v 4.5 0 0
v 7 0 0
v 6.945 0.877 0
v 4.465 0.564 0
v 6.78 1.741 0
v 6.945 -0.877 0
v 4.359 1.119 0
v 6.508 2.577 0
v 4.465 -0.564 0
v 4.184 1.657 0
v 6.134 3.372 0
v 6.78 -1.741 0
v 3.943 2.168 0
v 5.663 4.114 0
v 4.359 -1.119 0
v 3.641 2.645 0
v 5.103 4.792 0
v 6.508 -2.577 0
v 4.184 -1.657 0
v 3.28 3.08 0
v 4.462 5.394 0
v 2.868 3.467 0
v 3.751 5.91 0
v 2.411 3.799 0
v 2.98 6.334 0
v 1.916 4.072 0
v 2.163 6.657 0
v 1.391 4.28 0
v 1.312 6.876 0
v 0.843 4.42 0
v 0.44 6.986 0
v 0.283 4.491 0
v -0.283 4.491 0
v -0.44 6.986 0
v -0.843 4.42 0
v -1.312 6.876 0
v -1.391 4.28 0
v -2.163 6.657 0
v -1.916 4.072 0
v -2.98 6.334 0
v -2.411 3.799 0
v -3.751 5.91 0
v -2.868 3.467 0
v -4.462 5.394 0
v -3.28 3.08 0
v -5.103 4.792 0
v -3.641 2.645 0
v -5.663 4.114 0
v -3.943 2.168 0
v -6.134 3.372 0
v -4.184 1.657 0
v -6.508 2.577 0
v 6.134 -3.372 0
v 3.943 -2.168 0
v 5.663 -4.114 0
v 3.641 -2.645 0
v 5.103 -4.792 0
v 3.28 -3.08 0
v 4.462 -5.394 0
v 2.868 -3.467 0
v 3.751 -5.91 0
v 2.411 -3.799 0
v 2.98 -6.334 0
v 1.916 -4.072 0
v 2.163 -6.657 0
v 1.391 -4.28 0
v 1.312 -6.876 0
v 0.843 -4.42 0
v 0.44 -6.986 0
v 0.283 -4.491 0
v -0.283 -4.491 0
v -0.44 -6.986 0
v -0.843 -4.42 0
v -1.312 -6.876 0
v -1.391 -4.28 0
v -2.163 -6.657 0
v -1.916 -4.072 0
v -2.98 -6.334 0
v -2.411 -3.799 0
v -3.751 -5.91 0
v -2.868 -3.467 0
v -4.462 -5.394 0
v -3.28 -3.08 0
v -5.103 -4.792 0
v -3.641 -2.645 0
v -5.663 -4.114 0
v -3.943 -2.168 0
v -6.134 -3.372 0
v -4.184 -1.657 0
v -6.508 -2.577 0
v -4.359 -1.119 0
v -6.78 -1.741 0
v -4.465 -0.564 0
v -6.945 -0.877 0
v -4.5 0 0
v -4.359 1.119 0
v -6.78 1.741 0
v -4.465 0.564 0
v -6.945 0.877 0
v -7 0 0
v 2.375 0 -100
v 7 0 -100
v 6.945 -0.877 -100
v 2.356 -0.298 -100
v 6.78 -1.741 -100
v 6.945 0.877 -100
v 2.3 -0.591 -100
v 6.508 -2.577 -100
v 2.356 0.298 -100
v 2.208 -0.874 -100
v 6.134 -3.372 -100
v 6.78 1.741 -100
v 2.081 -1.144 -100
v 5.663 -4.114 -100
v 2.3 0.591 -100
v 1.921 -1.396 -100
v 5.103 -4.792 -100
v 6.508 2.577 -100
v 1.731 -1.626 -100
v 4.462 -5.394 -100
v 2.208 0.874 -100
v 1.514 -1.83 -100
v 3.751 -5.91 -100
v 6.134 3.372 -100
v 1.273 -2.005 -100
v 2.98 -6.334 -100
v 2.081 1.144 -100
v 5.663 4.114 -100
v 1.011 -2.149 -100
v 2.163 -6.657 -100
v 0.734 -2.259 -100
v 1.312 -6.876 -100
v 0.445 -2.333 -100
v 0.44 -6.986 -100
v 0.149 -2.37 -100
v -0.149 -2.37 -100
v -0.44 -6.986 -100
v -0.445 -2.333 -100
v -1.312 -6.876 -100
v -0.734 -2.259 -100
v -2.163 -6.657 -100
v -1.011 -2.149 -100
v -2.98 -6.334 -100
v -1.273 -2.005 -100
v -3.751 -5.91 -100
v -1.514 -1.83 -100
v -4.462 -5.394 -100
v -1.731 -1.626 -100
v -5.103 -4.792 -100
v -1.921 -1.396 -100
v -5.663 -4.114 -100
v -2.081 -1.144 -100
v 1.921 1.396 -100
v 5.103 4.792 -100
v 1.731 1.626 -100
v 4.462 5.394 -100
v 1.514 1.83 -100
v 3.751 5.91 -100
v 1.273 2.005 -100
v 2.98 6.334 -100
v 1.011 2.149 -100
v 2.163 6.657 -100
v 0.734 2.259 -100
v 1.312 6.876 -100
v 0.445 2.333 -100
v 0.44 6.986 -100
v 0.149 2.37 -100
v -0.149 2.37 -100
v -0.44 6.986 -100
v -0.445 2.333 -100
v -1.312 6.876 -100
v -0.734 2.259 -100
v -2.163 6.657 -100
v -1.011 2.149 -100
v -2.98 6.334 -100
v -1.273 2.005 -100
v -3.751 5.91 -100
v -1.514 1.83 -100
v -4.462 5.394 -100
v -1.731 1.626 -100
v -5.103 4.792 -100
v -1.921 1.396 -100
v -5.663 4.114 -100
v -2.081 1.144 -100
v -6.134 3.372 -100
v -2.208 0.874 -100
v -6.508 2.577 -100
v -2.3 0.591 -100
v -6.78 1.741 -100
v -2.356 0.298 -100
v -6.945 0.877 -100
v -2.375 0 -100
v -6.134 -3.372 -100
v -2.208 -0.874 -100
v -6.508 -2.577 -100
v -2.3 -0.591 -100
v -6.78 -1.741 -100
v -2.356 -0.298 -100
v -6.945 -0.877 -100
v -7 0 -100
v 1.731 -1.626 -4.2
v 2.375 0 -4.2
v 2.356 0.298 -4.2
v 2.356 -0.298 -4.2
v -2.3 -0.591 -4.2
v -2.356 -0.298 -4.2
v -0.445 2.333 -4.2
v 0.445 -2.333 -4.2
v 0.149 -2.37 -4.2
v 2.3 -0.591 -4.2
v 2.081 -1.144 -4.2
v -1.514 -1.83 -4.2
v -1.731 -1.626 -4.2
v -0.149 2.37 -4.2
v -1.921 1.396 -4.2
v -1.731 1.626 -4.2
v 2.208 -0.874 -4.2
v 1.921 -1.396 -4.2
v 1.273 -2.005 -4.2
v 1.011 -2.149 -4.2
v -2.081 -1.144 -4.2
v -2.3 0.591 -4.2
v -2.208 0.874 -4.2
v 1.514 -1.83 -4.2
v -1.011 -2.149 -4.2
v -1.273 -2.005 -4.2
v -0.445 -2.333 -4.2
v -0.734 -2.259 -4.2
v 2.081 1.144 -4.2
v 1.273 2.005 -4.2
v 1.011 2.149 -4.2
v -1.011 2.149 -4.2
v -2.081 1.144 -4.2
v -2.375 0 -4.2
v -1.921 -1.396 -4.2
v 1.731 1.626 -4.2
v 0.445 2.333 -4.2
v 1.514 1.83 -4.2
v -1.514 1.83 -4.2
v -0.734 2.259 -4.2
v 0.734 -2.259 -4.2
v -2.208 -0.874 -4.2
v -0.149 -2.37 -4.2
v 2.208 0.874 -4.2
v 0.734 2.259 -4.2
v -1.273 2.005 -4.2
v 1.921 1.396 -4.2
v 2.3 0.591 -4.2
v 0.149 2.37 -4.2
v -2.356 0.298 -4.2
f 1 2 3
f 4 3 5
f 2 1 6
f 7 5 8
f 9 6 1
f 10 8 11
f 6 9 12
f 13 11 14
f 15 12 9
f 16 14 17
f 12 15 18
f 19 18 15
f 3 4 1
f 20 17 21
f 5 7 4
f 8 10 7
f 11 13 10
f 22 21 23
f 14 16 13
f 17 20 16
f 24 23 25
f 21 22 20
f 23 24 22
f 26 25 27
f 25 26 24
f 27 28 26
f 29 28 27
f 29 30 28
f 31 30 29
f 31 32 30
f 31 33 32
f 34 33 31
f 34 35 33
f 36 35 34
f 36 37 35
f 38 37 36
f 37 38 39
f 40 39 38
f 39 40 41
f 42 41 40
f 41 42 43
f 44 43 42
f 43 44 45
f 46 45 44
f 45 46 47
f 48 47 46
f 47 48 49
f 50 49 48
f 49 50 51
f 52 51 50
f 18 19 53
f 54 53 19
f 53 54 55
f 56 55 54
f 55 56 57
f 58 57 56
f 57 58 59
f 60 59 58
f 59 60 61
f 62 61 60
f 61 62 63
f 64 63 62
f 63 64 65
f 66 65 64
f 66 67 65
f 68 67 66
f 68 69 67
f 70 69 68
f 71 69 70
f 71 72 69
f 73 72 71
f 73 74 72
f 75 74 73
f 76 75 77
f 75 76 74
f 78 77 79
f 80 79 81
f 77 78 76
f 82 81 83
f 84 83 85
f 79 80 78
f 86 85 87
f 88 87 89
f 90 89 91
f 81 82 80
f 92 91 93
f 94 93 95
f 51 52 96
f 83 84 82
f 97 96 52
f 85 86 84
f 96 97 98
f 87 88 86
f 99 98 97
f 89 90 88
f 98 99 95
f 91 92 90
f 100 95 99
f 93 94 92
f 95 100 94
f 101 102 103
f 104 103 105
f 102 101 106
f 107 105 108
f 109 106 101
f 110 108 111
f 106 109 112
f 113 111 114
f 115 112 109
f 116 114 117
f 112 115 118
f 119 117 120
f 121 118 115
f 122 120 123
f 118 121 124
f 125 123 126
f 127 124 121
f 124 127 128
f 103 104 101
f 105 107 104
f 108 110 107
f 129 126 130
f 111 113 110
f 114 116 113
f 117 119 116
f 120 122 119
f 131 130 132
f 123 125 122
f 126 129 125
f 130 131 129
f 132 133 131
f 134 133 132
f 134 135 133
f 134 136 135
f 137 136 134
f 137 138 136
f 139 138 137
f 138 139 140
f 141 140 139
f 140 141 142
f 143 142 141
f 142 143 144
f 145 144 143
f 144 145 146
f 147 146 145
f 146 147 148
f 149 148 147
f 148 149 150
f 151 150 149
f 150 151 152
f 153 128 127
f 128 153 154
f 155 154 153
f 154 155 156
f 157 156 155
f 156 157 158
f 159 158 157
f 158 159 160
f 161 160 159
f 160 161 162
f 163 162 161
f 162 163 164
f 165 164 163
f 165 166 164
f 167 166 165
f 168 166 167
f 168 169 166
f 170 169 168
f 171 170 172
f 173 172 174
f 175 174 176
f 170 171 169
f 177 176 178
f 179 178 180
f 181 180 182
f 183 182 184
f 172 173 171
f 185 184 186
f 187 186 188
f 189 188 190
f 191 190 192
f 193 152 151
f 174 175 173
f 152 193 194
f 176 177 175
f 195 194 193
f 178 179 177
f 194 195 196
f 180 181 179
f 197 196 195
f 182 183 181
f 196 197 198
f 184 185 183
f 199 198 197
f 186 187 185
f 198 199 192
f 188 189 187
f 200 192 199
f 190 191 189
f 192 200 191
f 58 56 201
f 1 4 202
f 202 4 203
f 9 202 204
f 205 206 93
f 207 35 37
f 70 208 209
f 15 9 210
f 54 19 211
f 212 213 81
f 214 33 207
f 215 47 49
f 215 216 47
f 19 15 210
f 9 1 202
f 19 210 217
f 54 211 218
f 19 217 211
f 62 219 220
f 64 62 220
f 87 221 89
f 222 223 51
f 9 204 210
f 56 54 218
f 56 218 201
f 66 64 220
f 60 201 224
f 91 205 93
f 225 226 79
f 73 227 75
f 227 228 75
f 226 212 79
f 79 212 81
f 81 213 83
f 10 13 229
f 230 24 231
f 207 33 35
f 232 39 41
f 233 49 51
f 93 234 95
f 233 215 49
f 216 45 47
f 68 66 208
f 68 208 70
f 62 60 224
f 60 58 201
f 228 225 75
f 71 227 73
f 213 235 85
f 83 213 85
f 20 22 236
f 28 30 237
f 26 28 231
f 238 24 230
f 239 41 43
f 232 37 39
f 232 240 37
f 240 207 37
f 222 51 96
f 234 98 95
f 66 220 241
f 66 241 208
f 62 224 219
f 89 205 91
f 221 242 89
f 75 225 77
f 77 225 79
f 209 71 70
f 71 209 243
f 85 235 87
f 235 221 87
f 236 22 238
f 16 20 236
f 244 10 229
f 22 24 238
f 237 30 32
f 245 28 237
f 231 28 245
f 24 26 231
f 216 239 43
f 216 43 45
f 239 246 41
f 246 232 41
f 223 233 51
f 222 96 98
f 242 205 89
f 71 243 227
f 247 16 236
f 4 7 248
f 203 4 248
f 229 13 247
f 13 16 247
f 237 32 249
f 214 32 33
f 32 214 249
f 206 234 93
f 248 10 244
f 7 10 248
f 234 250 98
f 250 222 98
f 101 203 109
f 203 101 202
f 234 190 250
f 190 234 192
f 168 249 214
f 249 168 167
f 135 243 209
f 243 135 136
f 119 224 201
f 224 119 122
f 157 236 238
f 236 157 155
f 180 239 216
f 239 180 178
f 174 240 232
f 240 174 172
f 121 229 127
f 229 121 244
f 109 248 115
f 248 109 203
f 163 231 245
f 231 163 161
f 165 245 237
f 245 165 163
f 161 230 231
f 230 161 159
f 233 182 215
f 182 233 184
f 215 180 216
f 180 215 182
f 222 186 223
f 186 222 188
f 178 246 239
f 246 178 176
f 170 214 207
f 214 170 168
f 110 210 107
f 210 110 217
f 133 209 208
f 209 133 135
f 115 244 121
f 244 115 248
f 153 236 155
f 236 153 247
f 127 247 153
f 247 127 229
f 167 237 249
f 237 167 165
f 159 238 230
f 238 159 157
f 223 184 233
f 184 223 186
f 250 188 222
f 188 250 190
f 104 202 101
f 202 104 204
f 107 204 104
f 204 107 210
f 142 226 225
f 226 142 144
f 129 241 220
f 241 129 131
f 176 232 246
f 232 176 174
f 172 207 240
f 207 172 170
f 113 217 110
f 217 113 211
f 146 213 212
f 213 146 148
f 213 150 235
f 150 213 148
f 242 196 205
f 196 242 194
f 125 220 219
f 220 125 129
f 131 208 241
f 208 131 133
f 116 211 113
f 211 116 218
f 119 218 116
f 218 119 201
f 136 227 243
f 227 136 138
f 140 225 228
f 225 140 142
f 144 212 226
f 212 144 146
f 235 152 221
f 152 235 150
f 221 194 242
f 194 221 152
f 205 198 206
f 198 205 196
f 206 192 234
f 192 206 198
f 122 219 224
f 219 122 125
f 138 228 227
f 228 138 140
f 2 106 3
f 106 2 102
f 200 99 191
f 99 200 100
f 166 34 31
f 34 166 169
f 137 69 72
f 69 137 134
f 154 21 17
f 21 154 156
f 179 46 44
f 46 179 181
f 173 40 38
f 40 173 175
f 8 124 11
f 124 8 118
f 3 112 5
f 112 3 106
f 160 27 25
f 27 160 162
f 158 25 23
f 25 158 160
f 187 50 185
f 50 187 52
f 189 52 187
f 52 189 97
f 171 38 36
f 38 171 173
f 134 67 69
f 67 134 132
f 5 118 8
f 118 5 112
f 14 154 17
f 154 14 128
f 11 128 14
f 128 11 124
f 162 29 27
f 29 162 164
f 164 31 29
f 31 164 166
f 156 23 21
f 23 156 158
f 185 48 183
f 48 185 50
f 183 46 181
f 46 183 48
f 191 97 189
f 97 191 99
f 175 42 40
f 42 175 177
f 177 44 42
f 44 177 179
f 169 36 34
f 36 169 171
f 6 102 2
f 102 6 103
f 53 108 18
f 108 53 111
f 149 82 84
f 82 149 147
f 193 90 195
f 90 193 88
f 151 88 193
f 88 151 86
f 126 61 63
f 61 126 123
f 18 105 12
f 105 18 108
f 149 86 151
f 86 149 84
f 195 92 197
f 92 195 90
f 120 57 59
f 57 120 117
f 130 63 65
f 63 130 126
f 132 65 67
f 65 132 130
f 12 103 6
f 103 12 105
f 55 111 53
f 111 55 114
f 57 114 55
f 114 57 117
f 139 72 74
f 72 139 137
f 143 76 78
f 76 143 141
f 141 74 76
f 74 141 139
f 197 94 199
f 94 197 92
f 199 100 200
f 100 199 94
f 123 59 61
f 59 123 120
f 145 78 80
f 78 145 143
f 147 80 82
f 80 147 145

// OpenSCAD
$fn = 50;


difference() {
	union() {
		translate(v = [0, 0, -100.0000000000]) {
			cylinder(h = 100, r = 7.0000000000);
		}
		cylinder(h = 0, r = 13.0000000000);
	}
	union() {
		translate(v = [0, 0, 0]) {
			rotate(a = [0, 0, 0]) {
				difference() {
					union() {
						#translate(v = [0, 0, -100.0000000000]) {
							cylinder(h = 100, r = 2.2500000000);
						}
						#translate(v = [0, 0, -4.2000000000]) {
							cylinder(h = 4.2000000000, r = 7.0000000000, r1 = 2.3750000000, r2 = 4.5000000000);
						}
						#translate(v = [0, 0, -100.0000000000]) {
							cylinder(h = 100, r = 2.3750000000);
						}
						#translate(v = [0, 0, -100.0000000000]) {
							cylinder(h = 100, r = 2.2500000000);
						}
					}
					union();
				}
			}
		}
	}
}
